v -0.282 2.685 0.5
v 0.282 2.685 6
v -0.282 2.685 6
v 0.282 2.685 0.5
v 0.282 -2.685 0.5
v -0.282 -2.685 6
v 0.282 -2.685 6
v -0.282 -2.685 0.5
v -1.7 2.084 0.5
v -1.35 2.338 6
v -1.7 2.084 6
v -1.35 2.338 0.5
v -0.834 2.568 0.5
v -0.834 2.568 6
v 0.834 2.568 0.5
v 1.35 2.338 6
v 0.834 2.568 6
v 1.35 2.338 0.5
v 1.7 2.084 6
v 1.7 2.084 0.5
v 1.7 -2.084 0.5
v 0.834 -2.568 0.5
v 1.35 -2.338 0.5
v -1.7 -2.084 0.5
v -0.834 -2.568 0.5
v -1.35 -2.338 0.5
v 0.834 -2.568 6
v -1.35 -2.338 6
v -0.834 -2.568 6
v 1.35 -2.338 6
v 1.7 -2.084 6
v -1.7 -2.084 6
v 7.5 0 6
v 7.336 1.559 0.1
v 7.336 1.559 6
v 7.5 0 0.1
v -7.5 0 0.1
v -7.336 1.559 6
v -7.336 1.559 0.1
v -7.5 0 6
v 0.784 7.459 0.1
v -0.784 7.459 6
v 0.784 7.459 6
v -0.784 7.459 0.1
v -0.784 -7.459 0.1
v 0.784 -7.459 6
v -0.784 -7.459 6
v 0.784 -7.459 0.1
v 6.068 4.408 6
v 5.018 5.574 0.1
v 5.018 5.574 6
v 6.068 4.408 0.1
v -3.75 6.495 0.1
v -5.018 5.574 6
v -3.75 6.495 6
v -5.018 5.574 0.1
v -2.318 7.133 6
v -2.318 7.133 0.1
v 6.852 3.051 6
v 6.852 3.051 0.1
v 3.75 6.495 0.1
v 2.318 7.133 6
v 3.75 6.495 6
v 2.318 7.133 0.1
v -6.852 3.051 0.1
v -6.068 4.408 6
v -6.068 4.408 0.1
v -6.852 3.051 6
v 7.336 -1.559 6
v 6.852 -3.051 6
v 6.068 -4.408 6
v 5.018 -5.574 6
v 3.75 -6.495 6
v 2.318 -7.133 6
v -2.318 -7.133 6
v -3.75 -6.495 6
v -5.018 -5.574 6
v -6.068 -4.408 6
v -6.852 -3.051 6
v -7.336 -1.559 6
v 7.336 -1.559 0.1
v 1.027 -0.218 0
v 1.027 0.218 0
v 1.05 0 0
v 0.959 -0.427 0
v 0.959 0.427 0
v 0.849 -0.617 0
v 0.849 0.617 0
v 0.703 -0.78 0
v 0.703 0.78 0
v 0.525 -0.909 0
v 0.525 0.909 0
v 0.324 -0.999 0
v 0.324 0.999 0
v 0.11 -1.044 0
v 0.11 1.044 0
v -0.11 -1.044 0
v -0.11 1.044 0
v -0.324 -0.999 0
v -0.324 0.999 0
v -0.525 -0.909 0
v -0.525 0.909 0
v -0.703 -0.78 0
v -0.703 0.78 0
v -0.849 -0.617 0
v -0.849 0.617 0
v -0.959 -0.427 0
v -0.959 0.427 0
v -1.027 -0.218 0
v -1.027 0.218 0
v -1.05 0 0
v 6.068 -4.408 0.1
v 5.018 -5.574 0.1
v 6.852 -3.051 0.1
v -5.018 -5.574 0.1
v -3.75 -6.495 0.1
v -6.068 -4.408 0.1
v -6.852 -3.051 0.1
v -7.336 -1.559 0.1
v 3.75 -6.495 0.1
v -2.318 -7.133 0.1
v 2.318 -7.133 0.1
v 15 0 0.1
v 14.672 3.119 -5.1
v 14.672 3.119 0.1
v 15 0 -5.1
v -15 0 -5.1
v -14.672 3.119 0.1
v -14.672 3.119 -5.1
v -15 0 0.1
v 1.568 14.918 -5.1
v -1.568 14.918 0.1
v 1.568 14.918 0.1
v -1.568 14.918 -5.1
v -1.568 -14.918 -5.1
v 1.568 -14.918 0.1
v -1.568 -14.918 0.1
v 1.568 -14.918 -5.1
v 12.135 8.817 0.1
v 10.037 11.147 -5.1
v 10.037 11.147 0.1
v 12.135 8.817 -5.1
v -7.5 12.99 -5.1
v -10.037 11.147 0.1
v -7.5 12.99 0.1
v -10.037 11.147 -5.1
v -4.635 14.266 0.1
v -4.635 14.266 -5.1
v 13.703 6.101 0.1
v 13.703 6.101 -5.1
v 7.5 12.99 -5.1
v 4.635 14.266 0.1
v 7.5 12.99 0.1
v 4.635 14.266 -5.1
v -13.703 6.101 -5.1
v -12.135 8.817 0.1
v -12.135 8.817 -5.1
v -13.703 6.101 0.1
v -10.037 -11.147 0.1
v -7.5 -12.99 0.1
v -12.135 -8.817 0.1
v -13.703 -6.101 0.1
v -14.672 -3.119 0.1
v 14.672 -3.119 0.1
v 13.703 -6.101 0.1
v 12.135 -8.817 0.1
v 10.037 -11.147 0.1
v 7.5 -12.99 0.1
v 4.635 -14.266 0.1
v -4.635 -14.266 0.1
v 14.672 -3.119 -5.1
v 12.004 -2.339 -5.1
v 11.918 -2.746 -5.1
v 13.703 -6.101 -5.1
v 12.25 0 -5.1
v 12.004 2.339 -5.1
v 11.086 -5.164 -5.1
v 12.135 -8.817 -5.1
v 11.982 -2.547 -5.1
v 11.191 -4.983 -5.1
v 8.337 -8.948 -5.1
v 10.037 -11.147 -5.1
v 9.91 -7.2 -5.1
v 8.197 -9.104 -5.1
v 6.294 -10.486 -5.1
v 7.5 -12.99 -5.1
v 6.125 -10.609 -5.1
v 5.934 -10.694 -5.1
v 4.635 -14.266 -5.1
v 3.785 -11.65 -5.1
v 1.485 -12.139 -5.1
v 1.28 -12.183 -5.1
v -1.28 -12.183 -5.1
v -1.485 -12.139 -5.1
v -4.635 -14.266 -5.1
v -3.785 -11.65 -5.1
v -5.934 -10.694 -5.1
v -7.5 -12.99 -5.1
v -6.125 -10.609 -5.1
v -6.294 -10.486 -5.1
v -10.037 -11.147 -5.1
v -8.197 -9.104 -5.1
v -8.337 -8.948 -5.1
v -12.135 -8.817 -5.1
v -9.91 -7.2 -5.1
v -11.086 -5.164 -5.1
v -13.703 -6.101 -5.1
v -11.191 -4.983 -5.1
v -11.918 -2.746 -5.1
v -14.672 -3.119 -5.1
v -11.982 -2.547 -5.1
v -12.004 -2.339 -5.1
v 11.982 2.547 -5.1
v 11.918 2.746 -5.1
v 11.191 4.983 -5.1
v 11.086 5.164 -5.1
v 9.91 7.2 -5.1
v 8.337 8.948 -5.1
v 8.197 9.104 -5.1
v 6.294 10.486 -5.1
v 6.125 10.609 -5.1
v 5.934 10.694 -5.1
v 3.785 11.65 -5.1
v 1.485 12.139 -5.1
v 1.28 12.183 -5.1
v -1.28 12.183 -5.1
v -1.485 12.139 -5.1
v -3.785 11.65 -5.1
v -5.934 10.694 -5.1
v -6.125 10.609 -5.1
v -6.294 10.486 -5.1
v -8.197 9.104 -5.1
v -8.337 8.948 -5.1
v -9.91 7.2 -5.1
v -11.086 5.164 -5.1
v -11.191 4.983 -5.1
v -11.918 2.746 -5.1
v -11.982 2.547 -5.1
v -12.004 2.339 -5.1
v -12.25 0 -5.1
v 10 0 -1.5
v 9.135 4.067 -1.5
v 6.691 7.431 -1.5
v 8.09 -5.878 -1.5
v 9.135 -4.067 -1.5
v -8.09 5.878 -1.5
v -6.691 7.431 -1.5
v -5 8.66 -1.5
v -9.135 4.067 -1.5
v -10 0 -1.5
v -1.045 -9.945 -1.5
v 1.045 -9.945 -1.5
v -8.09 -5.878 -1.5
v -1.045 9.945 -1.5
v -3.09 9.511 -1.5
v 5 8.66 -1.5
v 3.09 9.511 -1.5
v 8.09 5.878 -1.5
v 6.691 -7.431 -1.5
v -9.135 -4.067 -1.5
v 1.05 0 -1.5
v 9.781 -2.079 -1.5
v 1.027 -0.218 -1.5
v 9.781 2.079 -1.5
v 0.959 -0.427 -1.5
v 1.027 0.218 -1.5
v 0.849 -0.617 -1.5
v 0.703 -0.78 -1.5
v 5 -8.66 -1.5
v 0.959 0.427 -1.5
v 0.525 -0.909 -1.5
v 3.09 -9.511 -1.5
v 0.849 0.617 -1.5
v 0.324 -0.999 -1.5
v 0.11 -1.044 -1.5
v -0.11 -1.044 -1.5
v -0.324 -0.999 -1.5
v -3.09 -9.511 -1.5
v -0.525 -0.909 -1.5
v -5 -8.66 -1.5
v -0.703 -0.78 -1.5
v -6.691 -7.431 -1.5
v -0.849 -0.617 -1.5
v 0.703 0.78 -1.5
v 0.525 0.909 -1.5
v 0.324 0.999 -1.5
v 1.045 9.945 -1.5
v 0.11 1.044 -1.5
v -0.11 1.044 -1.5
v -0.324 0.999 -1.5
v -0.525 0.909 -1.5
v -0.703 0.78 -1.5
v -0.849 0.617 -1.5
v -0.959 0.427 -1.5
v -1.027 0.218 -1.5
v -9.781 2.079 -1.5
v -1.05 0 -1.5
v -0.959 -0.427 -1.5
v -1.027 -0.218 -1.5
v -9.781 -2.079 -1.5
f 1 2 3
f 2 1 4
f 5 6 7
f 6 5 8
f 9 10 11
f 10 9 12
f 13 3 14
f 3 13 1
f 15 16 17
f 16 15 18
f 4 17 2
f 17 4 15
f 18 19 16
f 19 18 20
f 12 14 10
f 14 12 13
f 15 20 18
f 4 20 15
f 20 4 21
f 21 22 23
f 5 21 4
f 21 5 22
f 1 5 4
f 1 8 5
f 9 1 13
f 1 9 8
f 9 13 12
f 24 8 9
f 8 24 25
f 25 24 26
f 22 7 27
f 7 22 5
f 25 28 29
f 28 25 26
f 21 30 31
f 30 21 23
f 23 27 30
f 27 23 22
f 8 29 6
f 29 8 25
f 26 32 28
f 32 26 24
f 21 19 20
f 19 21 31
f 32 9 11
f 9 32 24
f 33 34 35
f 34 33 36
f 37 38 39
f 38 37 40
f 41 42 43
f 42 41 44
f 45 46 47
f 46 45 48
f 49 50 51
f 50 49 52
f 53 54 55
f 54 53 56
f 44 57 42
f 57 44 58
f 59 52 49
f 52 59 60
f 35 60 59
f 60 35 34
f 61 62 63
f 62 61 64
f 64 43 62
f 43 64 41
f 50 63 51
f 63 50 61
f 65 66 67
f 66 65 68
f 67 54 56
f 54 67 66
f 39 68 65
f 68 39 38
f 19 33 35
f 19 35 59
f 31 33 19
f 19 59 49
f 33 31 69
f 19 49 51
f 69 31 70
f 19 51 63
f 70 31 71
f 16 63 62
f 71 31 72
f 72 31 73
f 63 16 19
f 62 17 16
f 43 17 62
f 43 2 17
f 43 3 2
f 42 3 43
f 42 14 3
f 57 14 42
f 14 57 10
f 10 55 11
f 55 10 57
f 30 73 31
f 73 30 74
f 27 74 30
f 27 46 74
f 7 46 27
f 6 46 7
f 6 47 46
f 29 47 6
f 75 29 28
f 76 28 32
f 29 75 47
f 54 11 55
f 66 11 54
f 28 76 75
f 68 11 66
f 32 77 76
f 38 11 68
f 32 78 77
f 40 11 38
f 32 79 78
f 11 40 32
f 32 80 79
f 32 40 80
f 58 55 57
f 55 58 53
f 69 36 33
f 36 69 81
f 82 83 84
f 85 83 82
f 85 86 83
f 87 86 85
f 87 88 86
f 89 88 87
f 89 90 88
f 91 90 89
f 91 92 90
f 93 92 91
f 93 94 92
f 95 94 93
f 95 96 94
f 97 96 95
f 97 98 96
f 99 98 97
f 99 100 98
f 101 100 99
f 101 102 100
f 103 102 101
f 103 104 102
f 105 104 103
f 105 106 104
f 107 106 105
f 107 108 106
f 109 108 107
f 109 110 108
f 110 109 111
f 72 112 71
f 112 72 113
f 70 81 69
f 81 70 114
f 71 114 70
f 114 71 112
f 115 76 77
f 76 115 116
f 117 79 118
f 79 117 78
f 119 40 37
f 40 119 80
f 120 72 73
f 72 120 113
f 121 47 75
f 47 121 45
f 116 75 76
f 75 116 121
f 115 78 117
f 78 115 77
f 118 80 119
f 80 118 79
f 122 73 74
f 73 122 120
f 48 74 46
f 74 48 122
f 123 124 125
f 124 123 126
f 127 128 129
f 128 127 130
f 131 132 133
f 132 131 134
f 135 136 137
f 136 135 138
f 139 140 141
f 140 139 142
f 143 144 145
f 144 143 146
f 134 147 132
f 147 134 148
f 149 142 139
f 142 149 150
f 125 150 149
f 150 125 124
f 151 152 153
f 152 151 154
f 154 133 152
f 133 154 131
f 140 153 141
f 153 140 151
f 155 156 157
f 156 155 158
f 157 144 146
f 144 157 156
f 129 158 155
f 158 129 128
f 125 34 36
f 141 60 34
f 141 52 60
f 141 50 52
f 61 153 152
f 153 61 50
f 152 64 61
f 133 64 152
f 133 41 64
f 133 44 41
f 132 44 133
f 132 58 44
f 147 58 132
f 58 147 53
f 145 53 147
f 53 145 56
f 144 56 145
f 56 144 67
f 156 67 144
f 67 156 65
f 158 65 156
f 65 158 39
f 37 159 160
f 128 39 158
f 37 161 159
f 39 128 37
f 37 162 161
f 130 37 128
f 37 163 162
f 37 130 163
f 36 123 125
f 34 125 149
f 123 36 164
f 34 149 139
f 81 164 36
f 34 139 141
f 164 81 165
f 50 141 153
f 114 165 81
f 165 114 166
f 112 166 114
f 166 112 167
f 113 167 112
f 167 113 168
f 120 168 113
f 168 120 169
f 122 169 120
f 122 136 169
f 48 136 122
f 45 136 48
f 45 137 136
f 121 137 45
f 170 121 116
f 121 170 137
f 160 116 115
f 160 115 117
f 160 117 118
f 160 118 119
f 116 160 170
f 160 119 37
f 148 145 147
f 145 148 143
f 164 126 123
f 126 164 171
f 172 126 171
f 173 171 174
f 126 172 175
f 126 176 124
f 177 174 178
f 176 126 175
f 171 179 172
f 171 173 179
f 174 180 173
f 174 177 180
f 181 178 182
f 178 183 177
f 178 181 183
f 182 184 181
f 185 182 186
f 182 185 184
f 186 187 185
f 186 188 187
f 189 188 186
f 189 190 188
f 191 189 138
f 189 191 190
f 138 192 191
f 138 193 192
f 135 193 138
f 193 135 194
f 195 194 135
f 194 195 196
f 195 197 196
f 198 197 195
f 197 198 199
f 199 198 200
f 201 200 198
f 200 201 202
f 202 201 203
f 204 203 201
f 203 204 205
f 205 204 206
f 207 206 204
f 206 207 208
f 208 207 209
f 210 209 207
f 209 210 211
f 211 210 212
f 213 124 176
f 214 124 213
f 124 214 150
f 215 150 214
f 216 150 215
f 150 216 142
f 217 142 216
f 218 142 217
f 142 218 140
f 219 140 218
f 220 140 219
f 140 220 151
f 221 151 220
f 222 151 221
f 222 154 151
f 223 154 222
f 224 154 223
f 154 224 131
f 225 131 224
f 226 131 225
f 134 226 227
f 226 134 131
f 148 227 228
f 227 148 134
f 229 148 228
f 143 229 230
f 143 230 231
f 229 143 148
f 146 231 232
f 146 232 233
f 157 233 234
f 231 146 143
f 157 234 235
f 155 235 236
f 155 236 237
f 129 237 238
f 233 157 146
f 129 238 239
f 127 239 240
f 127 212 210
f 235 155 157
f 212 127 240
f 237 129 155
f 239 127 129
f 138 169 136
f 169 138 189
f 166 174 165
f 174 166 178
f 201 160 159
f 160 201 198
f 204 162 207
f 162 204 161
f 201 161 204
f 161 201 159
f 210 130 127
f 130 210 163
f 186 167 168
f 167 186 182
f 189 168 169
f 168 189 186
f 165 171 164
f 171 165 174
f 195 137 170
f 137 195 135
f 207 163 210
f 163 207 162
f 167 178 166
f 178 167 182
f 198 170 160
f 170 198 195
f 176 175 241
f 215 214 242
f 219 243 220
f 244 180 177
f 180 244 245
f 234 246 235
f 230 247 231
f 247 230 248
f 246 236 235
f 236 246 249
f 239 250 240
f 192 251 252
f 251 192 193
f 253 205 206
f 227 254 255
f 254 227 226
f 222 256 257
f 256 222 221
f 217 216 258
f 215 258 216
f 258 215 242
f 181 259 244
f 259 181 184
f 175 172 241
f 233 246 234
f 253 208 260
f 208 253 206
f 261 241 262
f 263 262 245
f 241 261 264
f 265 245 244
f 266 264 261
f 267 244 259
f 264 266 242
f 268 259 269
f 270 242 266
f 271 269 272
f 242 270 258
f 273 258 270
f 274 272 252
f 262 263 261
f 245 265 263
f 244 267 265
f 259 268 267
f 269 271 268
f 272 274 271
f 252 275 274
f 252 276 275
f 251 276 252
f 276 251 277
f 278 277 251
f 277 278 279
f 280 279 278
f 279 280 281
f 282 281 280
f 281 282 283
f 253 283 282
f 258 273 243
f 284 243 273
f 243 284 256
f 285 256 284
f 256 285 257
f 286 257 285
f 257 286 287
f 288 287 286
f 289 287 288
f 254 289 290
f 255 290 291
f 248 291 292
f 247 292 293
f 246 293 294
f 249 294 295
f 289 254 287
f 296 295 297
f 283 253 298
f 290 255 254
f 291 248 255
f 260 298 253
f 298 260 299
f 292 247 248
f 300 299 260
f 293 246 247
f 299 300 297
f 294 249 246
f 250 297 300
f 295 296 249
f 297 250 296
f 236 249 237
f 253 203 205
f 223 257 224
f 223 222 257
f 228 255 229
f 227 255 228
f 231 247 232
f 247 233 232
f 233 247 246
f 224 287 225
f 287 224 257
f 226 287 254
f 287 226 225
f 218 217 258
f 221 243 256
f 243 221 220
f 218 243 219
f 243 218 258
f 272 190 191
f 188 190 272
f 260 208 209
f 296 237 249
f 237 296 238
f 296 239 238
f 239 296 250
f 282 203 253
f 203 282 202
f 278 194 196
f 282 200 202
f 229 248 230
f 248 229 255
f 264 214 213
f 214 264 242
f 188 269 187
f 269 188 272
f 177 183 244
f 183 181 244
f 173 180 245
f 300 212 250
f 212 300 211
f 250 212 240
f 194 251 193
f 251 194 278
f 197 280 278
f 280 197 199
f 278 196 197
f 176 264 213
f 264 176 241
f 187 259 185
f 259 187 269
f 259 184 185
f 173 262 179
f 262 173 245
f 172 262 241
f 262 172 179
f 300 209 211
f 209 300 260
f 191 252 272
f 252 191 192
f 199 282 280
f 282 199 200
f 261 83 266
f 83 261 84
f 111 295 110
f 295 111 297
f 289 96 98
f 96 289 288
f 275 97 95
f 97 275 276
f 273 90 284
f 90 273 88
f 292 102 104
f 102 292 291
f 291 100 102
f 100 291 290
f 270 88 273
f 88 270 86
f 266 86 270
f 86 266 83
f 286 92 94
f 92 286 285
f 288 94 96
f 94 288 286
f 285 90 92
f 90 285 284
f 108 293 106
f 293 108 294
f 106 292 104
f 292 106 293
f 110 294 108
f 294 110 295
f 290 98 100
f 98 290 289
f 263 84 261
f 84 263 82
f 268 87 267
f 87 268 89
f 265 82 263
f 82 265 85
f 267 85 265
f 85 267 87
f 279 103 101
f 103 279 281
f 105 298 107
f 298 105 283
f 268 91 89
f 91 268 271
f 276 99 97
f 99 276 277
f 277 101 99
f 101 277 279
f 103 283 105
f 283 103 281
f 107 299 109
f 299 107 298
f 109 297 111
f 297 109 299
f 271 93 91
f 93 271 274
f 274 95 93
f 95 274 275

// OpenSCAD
difference() { //fixation hole
    translate ([0,0,3]) cylinder (d=15, h=6, $fs=0.1, center=true);
    difference() { //chamfer
        translate ([0,0,4]) cylinder (d=5.4, h=7, $fs=0.1, center=true);
        translate ([1.7,-3.5,0]) cube([7,7,7]);
        translate ([-8.7,-3.5,0]) cube([7,7,7]);   
    }
}


difference() {

translate ([0,0,-2.5]) cylinder (d=30, h=5.2, $fs=0.1, center=true);

    translate ([0,0,-3.5]) cylinder (d1=25, d2=20, h=4, $fs=0.1, center=true);
    translate ([0,0,-4.1]) cylinder (d=2.1, h=15, $fs=0.1, center=true);
}
